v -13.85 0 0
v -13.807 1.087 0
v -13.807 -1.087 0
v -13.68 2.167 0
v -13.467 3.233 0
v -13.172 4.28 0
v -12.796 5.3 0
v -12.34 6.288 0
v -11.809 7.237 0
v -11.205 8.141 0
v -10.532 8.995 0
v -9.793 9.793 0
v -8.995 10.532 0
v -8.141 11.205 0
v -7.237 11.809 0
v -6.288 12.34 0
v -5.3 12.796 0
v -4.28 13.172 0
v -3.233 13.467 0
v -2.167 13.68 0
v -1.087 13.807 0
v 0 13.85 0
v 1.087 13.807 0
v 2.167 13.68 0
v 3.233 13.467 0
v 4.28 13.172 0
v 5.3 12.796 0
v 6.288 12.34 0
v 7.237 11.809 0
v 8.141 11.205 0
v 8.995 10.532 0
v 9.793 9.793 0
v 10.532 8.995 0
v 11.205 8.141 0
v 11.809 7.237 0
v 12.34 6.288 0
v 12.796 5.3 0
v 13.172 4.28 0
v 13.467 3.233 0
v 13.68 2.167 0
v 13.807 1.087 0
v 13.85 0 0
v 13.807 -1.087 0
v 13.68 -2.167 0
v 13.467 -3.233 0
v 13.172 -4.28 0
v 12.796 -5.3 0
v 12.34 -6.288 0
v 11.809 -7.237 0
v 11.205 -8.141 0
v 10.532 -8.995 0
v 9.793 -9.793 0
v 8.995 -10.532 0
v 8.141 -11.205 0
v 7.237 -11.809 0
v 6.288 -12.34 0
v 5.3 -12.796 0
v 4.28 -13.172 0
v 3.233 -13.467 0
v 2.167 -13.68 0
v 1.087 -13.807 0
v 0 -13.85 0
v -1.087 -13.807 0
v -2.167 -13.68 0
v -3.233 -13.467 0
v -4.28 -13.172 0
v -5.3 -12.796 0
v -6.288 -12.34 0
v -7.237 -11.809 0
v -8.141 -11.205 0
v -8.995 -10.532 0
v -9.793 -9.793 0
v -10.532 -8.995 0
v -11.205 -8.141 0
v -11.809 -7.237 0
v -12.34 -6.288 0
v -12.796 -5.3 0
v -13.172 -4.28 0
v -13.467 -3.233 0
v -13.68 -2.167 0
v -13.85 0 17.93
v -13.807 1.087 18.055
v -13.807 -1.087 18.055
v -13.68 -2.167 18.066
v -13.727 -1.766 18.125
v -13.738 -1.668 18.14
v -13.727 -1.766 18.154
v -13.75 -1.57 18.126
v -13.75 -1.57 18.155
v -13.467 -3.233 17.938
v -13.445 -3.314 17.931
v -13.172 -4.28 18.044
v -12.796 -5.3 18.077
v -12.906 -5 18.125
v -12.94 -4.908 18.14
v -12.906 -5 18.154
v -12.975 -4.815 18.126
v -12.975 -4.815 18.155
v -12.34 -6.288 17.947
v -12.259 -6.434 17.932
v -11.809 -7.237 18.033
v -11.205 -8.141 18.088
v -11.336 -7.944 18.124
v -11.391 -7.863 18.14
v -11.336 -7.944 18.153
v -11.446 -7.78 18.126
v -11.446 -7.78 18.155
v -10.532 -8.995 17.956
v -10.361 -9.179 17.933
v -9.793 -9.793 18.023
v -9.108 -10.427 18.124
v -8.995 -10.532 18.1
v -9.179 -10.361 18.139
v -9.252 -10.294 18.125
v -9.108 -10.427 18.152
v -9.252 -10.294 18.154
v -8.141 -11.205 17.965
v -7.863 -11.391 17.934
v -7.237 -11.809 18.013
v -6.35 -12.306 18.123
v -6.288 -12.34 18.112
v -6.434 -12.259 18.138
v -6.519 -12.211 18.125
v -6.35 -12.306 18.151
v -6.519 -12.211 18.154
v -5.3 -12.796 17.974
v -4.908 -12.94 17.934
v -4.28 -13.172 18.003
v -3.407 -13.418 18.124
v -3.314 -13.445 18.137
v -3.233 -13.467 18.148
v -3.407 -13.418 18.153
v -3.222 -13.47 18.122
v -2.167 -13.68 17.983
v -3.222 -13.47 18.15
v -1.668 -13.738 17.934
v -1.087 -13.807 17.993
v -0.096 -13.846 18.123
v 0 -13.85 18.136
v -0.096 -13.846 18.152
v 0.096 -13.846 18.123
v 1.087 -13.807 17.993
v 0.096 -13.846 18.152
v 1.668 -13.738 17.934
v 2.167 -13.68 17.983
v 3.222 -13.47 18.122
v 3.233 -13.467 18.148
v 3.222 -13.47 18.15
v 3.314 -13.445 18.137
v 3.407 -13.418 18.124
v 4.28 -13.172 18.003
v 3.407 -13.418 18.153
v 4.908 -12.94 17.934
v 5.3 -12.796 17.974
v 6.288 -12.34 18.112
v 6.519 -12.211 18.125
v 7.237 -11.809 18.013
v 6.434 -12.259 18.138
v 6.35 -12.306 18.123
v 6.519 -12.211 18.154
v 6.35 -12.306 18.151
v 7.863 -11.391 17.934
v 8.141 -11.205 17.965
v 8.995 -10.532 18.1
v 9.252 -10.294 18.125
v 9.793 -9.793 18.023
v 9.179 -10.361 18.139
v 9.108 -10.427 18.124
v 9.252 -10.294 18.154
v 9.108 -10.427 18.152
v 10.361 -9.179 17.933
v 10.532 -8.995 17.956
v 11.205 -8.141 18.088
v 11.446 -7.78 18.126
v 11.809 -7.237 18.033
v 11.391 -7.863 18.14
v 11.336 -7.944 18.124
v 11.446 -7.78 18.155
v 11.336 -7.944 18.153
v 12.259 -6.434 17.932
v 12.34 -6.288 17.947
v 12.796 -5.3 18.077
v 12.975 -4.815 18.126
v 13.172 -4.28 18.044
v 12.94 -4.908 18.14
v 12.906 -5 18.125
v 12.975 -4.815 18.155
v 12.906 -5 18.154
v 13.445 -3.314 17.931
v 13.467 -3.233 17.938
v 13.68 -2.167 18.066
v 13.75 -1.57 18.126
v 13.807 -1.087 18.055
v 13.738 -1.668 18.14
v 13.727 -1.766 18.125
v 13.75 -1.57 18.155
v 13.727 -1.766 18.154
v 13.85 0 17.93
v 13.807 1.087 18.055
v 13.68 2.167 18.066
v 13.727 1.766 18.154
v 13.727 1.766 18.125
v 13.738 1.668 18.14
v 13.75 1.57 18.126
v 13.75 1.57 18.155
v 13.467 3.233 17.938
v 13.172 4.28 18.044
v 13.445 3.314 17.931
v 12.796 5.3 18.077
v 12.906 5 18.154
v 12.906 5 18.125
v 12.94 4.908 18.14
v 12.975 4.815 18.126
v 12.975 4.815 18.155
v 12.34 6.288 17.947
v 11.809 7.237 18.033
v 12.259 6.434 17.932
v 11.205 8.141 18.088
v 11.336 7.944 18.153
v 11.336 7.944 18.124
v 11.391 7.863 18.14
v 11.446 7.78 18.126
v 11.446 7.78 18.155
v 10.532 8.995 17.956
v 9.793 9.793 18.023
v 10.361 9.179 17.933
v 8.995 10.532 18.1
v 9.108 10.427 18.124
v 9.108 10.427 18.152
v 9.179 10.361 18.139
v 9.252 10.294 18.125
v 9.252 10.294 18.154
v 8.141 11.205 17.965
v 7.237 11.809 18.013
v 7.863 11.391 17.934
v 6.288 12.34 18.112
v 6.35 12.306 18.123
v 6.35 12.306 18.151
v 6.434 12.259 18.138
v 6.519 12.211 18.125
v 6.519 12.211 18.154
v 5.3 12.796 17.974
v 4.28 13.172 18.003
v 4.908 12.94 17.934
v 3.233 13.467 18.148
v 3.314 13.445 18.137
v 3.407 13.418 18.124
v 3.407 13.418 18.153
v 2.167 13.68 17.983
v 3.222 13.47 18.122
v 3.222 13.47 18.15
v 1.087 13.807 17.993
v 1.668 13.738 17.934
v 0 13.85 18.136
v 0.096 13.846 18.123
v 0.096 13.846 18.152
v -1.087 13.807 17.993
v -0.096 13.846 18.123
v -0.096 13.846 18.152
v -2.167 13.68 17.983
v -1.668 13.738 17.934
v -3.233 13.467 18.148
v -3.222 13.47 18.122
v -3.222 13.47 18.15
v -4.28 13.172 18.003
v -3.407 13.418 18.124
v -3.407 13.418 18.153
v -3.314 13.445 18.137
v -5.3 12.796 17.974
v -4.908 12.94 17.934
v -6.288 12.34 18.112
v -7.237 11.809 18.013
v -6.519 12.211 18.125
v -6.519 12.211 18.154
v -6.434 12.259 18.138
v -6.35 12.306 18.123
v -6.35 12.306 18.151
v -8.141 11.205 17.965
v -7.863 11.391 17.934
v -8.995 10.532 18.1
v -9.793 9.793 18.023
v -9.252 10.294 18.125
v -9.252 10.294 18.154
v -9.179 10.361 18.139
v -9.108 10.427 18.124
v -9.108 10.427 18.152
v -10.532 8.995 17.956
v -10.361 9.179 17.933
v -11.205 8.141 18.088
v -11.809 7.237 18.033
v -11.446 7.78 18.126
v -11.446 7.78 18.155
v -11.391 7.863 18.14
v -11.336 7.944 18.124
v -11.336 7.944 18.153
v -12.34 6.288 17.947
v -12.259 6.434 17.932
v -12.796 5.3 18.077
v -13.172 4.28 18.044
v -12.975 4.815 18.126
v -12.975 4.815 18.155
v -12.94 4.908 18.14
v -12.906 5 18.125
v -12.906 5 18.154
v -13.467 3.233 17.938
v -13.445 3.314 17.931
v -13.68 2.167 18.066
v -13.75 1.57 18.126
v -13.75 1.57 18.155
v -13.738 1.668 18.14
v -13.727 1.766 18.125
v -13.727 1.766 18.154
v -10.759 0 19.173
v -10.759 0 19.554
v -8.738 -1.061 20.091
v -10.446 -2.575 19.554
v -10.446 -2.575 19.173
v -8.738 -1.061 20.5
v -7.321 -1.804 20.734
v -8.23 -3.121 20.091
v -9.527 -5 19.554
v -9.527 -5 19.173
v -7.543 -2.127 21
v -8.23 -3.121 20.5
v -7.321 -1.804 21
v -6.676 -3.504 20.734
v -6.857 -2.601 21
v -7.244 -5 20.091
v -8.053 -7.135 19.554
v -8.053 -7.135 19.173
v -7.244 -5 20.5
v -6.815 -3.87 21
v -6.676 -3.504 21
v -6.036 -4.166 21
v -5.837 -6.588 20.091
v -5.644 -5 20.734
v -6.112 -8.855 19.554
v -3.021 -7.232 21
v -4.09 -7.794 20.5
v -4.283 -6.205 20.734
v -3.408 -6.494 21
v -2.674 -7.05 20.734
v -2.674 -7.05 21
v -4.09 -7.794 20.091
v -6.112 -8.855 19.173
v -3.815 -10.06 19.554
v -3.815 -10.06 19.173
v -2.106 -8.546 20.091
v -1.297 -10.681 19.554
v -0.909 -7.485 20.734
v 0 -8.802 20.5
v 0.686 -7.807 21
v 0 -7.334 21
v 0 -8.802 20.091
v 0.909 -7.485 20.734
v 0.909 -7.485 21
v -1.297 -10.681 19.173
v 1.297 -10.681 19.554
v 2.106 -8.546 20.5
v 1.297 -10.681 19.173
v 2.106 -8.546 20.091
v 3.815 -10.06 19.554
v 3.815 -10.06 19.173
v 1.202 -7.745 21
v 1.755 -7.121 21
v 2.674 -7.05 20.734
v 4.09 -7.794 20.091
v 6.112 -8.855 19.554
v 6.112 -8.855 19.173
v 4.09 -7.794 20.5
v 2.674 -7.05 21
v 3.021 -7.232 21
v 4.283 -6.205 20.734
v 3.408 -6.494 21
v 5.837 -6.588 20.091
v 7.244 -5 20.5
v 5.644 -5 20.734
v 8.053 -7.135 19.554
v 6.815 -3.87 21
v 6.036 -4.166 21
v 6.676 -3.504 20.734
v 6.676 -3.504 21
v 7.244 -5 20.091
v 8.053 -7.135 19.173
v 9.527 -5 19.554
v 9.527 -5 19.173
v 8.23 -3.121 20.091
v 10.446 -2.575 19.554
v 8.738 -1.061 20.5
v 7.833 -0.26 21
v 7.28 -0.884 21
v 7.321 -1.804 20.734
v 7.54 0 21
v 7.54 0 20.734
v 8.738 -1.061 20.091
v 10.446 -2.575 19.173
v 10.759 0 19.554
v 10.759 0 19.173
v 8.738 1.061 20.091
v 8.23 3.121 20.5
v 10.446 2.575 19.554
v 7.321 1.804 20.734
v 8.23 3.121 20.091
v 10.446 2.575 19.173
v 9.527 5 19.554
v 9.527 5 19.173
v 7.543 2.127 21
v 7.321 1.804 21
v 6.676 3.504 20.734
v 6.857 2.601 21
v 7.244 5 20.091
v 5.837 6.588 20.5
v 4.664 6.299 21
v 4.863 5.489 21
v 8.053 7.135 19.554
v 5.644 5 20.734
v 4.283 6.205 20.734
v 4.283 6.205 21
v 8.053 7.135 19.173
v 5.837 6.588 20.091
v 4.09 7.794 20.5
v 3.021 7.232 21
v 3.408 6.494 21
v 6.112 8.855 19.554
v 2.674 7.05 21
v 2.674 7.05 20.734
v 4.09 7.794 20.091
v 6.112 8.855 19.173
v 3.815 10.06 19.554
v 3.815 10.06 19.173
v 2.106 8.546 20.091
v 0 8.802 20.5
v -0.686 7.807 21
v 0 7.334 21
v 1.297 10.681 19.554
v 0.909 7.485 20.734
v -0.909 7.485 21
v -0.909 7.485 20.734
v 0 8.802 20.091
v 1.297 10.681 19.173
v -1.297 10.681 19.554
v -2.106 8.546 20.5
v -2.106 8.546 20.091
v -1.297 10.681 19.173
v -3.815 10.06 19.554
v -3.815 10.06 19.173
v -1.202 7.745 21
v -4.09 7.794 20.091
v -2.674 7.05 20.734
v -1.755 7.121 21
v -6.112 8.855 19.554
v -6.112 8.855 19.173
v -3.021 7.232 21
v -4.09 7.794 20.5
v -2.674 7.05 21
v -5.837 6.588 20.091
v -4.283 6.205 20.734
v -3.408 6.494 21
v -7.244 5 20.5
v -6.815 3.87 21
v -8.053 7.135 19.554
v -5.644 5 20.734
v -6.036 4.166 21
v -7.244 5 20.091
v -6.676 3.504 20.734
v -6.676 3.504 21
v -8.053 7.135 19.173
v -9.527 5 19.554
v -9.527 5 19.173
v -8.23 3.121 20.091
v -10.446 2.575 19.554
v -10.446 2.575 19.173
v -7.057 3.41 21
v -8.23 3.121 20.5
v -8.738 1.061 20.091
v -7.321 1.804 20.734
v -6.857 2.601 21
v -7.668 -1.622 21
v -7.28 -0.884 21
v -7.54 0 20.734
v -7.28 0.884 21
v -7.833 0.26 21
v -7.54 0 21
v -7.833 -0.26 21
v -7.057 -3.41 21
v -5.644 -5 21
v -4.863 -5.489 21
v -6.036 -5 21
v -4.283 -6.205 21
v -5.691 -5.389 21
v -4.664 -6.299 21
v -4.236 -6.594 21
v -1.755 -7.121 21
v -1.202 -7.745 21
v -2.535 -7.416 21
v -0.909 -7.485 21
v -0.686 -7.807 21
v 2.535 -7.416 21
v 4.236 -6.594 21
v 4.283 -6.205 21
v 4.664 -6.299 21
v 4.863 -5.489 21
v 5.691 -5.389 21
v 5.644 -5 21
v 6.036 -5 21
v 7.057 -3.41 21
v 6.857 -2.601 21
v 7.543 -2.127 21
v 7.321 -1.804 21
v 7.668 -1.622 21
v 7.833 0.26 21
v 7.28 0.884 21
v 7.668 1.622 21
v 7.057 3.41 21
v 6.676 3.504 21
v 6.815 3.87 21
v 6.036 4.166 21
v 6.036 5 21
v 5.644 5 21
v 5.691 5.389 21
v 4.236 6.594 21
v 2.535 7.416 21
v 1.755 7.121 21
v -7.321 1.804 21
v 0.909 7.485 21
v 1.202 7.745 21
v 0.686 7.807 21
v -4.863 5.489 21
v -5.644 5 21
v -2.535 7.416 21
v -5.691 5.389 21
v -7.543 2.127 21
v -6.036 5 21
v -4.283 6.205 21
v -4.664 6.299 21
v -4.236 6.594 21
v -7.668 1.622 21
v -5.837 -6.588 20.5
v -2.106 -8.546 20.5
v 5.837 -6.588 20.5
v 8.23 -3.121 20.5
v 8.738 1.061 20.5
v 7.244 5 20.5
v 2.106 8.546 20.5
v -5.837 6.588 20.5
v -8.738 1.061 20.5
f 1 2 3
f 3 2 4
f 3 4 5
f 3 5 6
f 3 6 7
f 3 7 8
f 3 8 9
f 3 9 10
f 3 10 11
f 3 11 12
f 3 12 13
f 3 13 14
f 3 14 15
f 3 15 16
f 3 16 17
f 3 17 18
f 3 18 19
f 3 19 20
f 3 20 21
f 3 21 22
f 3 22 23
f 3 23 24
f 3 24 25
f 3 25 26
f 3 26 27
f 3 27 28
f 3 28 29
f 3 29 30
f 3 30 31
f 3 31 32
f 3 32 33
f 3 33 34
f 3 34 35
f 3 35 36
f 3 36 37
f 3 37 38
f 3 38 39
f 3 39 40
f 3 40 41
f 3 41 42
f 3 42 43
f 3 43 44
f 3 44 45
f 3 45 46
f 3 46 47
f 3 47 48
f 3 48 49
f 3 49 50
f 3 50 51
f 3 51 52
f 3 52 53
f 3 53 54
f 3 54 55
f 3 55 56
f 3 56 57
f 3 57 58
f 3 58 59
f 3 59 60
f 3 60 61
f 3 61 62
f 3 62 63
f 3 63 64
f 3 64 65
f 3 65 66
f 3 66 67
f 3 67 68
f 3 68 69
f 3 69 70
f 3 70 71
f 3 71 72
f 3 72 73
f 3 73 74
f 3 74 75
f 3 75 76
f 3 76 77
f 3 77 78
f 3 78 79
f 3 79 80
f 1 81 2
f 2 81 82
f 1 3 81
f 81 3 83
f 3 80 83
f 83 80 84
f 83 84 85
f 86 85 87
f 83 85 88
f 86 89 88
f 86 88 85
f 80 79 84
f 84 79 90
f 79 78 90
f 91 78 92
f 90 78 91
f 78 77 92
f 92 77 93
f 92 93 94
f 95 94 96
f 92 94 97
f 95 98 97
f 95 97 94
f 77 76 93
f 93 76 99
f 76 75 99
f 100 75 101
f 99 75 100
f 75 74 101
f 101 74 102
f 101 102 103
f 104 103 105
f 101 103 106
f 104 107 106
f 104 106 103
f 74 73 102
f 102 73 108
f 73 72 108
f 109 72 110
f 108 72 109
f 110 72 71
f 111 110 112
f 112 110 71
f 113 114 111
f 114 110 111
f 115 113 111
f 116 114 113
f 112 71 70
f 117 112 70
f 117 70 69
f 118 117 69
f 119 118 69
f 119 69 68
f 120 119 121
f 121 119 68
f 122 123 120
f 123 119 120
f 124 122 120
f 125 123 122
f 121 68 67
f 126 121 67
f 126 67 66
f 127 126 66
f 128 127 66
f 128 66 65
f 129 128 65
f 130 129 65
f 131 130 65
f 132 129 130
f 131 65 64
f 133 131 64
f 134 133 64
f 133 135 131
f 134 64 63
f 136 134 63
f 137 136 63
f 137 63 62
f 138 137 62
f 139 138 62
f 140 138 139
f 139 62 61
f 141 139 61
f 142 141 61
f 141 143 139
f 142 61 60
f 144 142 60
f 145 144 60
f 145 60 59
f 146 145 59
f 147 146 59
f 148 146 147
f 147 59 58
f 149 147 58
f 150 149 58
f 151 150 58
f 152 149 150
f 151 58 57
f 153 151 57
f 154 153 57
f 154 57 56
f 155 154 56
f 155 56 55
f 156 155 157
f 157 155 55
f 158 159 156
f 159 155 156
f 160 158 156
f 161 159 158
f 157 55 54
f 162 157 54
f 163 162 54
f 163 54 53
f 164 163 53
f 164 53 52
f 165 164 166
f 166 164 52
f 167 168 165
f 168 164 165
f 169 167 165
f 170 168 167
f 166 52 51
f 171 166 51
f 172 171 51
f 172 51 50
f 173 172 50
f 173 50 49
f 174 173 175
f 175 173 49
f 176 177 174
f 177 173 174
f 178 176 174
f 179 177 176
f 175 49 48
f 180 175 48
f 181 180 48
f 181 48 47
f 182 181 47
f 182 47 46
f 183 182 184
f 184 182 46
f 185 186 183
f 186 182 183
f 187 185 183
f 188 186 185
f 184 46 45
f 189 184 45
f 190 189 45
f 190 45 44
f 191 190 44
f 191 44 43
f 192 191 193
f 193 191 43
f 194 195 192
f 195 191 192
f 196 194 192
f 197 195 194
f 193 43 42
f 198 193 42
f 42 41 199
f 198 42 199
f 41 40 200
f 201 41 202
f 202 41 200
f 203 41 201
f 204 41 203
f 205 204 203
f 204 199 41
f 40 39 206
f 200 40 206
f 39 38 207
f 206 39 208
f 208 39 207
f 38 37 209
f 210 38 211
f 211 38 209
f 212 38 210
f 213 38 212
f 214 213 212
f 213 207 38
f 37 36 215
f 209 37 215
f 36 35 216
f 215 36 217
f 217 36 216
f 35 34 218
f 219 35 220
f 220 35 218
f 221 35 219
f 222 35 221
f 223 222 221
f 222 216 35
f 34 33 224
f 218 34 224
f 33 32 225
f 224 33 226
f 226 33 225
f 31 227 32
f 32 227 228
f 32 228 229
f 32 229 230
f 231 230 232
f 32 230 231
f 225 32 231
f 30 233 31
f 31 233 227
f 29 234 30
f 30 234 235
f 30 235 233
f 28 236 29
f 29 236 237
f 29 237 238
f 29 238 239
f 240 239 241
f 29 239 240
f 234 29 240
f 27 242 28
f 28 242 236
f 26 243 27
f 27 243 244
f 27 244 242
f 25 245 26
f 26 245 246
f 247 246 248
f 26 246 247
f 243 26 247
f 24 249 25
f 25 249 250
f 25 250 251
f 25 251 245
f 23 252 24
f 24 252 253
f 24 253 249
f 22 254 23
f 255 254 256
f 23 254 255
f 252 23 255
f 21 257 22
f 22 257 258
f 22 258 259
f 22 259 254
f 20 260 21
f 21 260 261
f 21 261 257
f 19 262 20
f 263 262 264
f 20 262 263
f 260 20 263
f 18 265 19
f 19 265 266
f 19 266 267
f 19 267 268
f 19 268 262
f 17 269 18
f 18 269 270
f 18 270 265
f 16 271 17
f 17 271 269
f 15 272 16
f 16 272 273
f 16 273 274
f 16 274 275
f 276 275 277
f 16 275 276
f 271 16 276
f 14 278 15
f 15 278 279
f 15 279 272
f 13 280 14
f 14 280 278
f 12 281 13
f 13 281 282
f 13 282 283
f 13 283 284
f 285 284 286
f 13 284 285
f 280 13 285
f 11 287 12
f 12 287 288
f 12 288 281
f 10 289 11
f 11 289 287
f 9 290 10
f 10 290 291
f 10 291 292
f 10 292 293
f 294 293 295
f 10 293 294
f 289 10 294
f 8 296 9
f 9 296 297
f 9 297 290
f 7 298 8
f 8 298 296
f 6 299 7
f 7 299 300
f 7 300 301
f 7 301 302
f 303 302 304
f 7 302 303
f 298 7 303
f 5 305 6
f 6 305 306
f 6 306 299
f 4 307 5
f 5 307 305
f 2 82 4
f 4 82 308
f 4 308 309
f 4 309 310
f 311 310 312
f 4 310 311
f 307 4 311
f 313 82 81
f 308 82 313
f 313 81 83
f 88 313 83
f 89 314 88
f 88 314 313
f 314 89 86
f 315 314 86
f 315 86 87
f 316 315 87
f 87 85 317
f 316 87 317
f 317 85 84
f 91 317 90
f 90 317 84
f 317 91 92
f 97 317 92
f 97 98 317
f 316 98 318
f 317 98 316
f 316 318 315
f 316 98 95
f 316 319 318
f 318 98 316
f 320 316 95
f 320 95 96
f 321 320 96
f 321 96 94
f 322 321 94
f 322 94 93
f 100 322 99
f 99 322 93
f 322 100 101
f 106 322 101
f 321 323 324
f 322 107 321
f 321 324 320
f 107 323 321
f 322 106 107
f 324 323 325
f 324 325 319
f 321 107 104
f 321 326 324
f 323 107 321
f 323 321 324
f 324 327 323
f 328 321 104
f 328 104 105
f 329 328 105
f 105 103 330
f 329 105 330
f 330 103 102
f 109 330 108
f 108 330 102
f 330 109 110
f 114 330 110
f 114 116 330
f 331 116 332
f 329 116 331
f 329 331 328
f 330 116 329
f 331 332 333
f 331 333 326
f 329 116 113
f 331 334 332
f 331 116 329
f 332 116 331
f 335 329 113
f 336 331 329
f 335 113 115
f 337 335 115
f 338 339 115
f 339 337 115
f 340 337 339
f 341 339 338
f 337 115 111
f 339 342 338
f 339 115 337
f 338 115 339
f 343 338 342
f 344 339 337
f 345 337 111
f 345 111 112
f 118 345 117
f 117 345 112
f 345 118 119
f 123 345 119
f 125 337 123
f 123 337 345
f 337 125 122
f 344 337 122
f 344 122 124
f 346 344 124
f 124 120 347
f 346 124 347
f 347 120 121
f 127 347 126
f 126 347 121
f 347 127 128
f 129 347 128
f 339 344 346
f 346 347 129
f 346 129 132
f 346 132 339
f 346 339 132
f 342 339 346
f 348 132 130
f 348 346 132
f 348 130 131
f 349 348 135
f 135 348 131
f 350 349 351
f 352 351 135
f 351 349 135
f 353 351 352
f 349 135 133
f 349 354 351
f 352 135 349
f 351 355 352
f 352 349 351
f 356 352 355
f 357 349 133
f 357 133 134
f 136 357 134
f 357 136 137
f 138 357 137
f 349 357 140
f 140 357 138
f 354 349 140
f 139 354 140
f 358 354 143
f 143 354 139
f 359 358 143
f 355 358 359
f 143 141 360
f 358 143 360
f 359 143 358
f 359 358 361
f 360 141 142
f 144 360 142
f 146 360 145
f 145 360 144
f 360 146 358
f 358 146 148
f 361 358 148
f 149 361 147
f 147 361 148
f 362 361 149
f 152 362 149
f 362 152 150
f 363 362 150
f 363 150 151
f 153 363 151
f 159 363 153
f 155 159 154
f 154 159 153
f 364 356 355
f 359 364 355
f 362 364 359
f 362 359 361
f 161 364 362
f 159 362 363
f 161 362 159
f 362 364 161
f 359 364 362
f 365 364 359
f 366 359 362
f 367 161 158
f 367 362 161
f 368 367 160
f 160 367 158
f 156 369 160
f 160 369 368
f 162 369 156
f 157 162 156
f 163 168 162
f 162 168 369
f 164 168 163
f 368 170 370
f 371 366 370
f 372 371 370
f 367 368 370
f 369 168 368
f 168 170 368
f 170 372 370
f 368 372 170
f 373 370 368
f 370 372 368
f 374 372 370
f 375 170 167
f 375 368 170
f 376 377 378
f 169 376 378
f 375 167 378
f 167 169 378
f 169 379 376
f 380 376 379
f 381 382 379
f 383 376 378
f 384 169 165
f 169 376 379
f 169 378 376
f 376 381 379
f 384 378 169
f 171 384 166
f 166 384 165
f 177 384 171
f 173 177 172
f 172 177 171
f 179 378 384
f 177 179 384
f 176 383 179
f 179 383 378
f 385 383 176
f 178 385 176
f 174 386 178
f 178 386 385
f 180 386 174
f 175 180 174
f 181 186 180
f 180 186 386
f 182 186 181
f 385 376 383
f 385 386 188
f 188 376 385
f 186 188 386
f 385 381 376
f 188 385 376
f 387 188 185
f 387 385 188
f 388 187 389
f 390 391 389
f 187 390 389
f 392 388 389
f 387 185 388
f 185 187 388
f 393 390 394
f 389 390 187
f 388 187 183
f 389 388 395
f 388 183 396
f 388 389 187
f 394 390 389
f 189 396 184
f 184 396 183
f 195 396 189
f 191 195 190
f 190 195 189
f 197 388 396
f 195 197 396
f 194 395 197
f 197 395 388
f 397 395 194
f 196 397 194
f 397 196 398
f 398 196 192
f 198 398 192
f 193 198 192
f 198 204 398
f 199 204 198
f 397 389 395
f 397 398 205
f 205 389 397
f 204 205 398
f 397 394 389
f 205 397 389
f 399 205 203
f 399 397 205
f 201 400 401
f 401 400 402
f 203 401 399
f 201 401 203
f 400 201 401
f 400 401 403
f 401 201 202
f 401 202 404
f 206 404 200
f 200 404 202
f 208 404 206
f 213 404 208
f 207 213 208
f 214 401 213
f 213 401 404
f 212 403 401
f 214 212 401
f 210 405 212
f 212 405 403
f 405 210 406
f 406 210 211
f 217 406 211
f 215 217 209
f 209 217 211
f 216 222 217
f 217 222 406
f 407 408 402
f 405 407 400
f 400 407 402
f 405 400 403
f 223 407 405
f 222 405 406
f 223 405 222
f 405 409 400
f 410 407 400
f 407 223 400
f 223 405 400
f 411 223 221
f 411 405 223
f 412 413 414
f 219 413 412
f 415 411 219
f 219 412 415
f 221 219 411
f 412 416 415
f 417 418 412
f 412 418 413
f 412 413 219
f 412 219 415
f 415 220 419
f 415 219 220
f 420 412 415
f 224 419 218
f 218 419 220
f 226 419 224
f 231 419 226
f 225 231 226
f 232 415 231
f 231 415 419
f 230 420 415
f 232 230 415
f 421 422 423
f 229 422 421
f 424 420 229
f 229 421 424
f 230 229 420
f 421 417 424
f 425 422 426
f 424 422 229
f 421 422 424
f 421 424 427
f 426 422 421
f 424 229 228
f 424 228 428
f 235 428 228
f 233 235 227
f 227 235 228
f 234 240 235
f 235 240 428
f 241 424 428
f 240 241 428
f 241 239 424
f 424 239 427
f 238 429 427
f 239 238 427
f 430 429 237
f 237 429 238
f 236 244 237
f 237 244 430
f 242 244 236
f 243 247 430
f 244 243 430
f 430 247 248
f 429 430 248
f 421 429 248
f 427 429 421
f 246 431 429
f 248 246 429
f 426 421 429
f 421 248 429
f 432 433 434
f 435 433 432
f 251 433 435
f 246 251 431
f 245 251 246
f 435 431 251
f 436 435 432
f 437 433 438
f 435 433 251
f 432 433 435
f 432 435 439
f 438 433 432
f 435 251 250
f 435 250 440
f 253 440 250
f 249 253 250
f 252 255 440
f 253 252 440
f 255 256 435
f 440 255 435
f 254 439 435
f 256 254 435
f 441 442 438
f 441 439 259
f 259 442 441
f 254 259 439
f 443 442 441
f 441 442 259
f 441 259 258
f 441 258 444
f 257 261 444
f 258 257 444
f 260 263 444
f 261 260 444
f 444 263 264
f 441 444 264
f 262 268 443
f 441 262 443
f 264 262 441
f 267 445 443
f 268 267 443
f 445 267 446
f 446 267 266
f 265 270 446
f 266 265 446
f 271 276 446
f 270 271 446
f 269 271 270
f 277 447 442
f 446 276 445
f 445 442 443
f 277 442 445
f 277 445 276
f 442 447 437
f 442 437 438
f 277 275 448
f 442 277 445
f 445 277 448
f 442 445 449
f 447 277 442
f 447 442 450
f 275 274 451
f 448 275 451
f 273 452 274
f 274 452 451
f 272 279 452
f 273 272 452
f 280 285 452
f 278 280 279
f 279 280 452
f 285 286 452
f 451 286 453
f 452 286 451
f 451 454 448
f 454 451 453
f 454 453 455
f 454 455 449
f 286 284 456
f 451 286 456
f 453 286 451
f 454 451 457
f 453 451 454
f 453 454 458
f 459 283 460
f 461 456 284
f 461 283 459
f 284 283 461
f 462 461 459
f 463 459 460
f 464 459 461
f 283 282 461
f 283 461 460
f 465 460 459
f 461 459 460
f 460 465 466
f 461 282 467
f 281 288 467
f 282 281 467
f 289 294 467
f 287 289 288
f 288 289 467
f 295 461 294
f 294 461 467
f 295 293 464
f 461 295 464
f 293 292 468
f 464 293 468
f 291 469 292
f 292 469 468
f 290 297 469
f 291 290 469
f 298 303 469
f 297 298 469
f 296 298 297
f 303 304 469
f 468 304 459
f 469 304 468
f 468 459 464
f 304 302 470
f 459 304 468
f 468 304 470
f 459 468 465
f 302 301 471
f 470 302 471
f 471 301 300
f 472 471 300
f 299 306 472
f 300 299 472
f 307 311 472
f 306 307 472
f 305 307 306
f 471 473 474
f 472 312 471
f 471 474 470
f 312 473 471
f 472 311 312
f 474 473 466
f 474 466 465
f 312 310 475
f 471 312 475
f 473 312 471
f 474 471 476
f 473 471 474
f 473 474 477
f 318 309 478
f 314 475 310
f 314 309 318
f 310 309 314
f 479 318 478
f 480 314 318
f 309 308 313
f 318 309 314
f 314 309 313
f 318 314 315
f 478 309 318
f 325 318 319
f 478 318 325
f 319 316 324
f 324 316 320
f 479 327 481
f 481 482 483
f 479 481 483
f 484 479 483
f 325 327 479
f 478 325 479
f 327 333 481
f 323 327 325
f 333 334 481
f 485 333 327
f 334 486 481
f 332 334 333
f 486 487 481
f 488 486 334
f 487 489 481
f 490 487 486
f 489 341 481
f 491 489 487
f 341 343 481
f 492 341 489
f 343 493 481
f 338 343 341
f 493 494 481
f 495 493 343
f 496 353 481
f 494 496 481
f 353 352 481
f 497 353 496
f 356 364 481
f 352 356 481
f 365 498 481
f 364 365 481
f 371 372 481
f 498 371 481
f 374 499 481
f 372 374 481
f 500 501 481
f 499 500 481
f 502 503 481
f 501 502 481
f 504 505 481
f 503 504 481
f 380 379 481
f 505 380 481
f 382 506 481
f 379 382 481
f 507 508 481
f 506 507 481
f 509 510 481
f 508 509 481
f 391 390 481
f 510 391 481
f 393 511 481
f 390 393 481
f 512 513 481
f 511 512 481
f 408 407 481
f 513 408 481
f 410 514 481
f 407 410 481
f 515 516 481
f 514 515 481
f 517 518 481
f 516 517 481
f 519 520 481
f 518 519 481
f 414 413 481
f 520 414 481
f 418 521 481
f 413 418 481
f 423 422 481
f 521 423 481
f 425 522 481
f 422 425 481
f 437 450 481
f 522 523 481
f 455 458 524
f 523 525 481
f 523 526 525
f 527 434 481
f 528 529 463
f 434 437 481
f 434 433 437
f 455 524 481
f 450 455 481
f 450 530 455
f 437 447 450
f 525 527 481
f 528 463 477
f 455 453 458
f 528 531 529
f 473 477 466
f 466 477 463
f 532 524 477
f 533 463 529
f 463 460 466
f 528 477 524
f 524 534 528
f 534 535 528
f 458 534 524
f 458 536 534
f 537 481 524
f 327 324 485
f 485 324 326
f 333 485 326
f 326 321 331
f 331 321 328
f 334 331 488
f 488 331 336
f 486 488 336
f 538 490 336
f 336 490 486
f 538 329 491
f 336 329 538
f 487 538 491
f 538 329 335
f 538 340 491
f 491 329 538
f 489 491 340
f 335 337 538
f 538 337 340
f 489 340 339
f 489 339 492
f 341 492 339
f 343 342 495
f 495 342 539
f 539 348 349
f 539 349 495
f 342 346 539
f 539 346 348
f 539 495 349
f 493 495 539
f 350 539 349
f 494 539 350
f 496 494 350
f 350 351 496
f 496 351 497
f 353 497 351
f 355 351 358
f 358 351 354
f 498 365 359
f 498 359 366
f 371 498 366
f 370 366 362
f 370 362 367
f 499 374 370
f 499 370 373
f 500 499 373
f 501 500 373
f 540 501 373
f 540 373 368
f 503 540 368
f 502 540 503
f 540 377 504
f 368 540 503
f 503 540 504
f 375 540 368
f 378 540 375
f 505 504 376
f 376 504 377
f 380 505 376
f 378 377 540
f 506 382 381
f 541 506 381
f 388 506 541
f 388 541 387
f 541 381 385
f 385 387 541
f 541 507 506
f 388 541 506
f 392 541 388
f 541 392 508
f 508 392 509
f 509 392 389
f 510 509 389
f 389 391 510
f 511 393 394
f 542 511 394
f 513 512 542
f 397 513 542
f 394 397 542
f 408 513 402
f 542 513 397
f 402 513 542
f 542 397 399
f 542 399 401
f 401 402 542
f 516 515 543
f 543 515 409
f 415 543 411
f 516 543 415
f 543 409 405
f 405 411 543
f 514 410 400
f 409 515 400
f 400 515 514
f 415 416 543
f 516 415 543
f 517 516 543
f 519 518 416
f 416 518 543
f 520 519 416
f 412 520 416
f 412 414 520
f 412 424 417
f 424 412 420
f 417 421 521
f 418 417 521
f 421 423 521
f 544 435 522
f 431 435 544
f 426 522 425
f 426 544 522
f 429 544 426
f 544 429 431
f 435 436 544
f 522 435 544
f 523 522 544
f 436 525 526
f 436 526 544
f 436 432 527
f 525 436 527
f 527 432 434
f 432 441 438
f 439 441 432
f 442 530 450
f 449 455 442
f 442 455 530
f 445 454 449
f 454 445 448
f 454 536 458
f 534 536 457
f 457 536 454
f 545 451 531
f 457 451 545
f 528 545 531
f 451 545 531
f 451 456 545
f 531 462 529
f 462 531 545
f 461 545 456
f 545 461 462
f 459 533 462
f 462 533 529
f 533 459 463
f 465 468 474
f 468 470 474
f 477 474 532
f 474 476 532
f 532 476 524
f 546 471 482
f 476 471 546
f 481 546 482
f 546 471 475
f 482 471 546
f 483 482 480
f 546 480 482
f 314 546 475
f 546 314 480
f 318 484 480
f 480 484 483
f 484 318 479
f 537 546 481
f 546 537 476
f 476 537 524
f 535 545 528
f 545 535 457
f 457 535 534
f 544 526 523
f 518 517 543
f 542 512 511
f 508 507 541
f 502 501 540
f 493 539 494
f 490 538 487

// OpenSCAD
$fn=80;
len=21;
dia=27.7;
topRoundness=13;

intersection() {
	cylinder(r=dia/2, h=len);
	
	for(rot=[1:topRoundness]) {
		translate([0,0,2])
		rotate(rot*360/topRoundness,[0,0,1])
		rotate(90,[1,0,0])
		cylinder(r=21.5, h=10, center=true, $fn=8);
	}
}
